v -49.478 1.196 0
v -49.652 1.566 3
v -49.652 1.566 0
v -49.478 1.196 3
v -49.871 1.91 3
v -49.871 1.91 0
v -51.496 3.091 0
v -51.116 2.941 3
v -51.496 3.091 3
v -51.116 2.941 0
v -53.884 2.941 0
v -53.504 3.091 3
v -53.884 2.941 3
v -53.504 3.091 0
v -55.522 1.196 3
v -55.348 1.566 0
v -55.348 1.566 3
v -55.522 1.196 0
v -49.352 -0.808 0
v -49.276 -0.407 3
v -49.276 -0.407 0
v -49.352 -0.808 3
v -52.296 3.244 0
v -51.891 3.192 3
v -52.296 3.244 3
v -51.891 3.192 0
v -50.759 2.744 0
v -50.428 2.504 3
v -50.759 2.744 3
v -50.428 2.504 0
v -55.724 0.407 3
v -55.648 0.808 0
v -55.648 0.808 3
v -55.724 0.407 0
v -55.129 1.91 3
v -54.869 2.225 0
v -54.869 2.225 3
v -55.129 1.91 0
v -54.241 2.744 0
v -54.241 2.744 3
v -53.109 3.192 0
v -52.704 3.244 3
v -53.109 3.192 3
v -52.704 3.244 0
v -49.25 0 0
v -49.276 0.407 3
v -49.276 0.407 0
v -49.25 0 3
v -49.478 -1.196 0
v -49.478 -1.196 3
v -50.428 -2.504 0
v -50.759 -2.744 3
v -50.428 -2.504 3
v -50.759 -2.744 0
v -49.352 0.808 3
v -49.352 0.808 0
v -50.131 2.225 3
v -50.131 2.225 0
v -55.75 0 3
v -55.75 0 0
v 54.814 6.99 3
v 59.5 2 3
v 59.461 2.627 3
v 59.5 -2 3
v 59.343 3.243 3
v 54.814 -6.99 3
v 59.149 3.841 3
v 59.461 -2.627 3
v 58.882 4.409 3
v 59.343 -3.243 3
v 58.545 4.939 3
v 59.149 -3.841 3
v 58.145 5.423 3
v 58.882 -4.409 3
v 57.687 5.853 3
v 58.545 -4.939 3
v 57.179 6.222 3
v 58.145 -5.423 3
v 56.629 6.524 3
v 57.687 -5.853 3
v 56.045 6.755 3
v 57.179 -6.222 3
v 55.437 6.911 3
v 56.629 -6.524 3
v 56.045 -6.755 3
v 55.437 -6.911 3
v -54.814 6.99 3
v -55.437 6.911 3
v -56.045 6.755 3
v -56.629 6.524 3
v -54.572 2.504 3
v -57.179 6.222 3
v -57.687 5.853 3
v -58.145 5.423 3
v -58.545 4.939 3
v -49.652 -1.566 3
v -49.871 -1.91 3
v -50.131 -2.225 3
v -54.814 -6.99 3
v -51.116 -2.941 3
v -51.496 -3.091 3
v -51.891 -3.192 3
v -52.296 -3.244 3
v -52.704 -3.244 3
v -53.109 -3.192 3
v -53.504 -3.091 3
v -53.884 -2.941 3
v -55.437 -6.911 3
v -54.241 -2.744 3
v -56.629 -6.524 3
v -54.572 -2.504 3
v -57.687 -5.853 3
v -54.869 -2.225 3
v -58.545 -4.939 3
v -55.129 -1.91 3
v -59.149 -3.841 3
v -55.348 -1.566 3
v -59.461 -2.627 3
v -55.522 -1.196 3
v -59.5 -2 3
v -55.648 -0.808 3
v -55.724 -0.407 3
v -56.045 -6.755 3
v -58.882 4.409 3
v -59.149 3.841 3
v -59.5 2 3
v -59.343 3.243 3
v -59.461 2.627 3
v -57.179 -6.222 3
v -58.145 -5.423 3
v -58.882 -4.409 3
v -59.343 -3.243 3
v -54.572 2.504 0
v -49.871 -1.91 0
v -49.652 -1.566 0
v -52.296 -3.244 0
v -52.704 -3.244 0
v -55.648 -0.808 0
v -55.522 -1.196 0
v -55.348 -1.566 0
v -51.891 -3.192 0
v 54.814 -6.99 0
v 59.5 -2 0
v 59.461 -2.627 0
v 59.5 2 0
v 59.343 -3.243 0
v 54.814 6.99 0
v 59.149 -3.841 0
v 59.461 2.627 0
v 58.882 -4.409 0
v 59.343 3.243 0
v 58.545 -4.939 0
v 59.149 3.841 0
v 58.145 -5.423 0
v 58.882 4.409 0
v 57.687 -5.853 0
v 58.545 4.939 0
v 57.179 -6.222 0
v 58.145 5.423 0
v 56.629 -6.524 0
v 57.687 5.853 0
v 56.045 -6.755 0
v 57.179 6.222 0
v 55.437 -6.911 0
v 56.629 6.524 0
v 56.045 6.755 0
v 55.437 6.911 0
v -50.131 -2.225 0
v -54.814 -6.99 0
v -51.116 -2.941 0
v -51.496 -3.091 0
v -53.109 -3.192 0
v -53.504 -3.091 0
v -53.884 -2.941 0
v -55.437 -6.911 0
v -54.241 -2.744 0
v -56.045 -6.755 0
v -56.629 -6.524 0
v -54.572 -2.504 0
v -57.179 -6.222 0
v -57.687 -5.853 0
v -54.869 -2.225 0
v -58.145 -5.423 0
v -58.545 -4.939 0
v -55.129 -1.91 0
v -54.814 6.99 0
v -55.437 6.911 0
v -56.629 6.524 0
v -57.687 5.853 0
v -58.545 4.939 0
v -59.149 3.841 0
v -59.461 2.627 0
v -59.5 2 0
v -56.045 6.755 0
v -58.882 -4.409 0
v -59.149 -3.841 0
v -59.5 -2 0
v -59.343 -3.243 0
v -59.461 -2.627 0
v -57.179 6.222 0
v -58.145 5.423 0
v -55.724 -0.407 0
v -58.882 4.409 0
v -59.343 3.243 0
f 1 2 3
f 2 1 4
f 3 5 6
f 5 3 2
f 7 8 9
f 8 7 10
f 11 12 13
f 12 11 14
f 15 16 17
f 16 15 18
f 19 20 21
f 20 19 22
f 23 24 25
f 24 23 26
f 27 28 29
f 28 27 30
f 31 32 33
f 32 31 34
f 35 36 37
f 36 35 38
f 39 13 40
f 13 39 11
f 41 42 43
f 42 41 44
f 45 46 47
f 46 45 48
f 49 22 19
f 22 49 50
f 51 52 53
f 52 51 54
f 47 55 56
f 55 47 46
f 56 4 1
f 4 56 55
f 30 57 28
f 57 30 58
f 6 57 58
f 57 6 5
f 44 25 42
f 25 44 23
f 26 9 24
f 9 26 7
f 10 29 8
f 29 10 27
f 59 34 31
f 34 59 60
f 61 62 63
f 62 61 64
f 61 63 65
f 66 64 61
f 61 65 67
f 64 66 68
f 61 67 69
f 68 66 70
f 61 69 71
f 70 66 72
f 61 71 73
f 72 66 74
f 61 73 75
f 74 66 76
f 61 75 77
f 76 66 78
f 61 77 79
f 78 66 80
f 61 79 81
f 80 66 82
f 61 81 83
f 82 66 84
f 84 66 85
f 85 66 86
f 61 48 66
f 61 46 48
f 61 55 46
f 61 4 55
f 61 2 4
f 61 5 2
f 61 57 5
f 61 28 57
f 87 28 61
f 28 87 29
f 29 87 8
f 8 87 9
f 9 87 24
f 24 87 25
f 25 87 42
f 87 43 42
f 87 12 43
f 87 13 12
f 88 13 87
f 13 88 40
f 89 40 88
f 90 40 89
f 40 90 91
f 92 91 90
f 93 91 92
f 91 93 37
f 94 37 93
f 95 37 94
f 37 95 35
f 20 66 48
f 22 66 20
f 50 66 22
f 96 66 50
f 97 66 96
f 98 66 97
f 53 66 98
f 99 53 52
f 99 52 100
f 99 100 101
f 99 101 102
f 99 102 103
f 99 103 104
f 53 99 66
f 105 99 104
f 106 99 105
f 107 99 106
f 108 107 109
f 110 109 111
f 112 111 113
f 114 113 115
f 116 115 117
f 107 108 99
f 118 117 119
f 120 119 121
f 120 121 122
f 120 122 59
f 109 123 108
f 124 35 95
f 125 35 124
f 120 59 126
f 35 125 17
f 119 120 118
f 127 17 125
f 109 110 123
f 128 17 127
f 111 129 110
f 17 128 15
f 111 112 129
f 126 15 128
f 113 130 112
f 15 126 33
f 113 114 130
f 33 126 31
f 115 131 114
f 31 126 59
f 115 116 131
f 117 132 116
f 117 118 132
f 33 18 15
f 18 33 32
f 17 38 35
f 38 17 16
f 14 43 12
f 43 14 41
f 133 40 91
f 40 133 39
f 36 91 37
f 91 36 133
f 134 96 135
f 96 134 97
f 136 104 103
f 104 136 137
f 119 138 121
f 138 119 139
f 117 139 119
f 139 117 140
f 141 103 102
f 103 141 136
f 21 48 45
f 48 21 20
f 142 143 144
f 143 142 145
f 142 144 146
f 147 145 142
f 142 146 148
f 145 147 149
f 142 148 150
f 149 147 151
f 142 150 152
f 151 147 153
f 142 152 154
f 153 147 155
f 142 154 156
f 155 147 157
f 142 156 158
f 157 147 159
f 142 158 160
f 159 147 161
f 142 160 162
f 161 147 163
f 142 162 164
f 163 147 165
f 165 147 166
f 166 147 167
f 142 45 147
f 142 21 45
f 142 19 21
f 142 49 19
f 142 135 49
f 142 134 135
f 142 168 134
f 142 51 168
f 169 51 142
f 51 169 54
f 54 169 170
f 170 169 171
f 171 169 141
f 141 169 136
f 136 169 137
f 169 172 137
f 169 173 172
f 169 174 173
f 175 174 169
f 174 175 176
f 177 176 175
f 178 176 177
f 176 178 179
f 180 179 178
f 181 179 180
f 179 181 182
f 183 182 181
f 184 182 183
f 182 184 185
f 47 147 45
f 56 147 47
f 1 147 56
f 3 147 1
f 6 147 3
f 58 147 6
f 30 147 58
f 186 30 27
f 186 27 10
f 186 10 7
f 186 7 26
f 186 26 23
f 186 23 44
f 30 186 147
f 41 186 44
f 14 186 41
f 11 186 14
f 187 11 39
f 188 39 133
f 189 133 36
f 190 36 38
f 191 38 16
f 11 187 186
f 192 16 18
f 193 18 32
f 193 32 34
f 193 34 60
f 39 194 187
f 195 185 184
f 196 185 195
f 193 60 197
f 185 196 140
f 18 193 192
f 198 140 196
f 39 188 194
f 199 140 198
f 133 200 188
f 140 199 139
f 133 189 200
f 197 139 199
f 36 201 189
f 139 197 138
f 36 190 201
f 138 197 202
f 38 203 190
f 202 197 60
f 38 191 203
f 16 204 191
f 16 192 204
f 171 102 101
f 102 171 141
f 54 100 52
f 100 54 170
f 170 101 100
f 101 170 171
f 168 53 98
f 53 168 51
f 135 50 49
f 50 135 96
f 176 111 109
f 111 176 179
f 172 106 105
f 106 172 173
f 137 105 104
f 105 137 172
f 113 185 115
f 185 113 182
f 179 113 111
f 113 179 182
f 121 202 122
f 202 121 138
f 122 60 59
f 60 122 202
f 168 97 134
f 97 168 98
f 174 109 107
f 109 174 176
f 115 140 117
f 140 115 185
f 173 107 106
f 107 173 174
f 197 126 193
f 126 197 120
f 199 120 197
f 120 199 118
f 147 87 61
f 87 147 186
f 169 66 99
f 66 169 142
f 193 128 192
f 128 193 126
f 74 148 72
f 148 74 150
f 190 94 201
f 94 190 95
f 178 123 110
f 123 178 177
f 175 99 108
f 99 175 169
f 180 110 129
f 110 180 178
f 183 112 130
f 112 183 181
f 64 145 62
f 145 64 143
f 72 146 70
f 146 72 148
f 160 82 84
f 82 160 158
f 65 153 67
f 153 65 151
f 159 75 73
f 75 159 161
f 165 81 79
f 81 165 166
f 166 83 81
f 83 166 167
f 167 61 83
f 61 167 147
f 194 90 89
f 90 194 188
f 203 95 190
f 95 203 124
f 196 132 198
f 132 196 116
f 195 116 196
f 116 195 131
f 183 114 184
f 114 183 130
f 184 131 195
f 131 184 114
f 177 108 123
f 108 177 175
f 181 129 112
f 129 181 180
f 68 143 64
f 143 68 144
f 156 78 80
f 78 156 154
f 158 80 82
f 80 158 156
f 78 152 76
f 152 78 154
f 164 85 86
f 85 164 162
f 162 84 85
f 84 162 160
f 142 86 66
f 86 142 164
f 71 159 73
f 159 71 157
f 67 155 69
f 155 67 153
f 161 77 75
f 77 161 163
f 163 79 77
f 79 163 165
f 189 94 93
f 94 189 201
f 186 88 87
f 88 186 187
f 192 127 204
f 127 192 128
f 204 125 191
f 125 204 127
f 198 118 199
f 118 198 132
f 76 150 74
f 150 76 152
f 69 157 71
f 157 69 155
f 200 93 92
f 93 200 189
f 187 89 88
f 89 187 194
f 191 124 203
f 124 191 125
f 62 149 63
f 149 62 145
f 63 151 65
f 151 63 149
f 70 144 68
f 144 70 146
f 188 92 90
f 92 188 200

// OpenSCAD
$fn = 50;


difference() {
	union() {
		hull() {
			translate(v = [-54.5000000000, 2.0000000000, 0]) {
				cylinder(h = 3, r = 5);
			}
			translate(v = [54.5000000000, 2.0000000000, 0]) {
				cylinder(h = 3, r = 5);
			}
			translate(v = [-54.5000000000, -2.0000000000, 0]) {
				cylinder(h = 3, r = 5);
			}
			translate(v = [54.5000000000, -2.0000000000, 0]) {
				cylinder(h = 3, r = 5);
			}
		}
	}
	union() {
		translate(v = [-52.5000000000, 0.0000000000, 0]) {
			cylinder(h = 3, r = 3.2500000000);
		}
		translate(v = [-52.5000000000, 0.0000000000, 0]) {
			cylinder(h = 3, r = 1.8000000000);
		}
		translate(v = [-52.5000000000, 0.0000000000, 0]) {
			cylinder(h = 3, r = 1.8000000000);
		}
		translate(v = [-52.5000000000, 0.0000000000, 0]) {
			cylinder(h = 3, r = 1.8000000000);
		}
	}
}
